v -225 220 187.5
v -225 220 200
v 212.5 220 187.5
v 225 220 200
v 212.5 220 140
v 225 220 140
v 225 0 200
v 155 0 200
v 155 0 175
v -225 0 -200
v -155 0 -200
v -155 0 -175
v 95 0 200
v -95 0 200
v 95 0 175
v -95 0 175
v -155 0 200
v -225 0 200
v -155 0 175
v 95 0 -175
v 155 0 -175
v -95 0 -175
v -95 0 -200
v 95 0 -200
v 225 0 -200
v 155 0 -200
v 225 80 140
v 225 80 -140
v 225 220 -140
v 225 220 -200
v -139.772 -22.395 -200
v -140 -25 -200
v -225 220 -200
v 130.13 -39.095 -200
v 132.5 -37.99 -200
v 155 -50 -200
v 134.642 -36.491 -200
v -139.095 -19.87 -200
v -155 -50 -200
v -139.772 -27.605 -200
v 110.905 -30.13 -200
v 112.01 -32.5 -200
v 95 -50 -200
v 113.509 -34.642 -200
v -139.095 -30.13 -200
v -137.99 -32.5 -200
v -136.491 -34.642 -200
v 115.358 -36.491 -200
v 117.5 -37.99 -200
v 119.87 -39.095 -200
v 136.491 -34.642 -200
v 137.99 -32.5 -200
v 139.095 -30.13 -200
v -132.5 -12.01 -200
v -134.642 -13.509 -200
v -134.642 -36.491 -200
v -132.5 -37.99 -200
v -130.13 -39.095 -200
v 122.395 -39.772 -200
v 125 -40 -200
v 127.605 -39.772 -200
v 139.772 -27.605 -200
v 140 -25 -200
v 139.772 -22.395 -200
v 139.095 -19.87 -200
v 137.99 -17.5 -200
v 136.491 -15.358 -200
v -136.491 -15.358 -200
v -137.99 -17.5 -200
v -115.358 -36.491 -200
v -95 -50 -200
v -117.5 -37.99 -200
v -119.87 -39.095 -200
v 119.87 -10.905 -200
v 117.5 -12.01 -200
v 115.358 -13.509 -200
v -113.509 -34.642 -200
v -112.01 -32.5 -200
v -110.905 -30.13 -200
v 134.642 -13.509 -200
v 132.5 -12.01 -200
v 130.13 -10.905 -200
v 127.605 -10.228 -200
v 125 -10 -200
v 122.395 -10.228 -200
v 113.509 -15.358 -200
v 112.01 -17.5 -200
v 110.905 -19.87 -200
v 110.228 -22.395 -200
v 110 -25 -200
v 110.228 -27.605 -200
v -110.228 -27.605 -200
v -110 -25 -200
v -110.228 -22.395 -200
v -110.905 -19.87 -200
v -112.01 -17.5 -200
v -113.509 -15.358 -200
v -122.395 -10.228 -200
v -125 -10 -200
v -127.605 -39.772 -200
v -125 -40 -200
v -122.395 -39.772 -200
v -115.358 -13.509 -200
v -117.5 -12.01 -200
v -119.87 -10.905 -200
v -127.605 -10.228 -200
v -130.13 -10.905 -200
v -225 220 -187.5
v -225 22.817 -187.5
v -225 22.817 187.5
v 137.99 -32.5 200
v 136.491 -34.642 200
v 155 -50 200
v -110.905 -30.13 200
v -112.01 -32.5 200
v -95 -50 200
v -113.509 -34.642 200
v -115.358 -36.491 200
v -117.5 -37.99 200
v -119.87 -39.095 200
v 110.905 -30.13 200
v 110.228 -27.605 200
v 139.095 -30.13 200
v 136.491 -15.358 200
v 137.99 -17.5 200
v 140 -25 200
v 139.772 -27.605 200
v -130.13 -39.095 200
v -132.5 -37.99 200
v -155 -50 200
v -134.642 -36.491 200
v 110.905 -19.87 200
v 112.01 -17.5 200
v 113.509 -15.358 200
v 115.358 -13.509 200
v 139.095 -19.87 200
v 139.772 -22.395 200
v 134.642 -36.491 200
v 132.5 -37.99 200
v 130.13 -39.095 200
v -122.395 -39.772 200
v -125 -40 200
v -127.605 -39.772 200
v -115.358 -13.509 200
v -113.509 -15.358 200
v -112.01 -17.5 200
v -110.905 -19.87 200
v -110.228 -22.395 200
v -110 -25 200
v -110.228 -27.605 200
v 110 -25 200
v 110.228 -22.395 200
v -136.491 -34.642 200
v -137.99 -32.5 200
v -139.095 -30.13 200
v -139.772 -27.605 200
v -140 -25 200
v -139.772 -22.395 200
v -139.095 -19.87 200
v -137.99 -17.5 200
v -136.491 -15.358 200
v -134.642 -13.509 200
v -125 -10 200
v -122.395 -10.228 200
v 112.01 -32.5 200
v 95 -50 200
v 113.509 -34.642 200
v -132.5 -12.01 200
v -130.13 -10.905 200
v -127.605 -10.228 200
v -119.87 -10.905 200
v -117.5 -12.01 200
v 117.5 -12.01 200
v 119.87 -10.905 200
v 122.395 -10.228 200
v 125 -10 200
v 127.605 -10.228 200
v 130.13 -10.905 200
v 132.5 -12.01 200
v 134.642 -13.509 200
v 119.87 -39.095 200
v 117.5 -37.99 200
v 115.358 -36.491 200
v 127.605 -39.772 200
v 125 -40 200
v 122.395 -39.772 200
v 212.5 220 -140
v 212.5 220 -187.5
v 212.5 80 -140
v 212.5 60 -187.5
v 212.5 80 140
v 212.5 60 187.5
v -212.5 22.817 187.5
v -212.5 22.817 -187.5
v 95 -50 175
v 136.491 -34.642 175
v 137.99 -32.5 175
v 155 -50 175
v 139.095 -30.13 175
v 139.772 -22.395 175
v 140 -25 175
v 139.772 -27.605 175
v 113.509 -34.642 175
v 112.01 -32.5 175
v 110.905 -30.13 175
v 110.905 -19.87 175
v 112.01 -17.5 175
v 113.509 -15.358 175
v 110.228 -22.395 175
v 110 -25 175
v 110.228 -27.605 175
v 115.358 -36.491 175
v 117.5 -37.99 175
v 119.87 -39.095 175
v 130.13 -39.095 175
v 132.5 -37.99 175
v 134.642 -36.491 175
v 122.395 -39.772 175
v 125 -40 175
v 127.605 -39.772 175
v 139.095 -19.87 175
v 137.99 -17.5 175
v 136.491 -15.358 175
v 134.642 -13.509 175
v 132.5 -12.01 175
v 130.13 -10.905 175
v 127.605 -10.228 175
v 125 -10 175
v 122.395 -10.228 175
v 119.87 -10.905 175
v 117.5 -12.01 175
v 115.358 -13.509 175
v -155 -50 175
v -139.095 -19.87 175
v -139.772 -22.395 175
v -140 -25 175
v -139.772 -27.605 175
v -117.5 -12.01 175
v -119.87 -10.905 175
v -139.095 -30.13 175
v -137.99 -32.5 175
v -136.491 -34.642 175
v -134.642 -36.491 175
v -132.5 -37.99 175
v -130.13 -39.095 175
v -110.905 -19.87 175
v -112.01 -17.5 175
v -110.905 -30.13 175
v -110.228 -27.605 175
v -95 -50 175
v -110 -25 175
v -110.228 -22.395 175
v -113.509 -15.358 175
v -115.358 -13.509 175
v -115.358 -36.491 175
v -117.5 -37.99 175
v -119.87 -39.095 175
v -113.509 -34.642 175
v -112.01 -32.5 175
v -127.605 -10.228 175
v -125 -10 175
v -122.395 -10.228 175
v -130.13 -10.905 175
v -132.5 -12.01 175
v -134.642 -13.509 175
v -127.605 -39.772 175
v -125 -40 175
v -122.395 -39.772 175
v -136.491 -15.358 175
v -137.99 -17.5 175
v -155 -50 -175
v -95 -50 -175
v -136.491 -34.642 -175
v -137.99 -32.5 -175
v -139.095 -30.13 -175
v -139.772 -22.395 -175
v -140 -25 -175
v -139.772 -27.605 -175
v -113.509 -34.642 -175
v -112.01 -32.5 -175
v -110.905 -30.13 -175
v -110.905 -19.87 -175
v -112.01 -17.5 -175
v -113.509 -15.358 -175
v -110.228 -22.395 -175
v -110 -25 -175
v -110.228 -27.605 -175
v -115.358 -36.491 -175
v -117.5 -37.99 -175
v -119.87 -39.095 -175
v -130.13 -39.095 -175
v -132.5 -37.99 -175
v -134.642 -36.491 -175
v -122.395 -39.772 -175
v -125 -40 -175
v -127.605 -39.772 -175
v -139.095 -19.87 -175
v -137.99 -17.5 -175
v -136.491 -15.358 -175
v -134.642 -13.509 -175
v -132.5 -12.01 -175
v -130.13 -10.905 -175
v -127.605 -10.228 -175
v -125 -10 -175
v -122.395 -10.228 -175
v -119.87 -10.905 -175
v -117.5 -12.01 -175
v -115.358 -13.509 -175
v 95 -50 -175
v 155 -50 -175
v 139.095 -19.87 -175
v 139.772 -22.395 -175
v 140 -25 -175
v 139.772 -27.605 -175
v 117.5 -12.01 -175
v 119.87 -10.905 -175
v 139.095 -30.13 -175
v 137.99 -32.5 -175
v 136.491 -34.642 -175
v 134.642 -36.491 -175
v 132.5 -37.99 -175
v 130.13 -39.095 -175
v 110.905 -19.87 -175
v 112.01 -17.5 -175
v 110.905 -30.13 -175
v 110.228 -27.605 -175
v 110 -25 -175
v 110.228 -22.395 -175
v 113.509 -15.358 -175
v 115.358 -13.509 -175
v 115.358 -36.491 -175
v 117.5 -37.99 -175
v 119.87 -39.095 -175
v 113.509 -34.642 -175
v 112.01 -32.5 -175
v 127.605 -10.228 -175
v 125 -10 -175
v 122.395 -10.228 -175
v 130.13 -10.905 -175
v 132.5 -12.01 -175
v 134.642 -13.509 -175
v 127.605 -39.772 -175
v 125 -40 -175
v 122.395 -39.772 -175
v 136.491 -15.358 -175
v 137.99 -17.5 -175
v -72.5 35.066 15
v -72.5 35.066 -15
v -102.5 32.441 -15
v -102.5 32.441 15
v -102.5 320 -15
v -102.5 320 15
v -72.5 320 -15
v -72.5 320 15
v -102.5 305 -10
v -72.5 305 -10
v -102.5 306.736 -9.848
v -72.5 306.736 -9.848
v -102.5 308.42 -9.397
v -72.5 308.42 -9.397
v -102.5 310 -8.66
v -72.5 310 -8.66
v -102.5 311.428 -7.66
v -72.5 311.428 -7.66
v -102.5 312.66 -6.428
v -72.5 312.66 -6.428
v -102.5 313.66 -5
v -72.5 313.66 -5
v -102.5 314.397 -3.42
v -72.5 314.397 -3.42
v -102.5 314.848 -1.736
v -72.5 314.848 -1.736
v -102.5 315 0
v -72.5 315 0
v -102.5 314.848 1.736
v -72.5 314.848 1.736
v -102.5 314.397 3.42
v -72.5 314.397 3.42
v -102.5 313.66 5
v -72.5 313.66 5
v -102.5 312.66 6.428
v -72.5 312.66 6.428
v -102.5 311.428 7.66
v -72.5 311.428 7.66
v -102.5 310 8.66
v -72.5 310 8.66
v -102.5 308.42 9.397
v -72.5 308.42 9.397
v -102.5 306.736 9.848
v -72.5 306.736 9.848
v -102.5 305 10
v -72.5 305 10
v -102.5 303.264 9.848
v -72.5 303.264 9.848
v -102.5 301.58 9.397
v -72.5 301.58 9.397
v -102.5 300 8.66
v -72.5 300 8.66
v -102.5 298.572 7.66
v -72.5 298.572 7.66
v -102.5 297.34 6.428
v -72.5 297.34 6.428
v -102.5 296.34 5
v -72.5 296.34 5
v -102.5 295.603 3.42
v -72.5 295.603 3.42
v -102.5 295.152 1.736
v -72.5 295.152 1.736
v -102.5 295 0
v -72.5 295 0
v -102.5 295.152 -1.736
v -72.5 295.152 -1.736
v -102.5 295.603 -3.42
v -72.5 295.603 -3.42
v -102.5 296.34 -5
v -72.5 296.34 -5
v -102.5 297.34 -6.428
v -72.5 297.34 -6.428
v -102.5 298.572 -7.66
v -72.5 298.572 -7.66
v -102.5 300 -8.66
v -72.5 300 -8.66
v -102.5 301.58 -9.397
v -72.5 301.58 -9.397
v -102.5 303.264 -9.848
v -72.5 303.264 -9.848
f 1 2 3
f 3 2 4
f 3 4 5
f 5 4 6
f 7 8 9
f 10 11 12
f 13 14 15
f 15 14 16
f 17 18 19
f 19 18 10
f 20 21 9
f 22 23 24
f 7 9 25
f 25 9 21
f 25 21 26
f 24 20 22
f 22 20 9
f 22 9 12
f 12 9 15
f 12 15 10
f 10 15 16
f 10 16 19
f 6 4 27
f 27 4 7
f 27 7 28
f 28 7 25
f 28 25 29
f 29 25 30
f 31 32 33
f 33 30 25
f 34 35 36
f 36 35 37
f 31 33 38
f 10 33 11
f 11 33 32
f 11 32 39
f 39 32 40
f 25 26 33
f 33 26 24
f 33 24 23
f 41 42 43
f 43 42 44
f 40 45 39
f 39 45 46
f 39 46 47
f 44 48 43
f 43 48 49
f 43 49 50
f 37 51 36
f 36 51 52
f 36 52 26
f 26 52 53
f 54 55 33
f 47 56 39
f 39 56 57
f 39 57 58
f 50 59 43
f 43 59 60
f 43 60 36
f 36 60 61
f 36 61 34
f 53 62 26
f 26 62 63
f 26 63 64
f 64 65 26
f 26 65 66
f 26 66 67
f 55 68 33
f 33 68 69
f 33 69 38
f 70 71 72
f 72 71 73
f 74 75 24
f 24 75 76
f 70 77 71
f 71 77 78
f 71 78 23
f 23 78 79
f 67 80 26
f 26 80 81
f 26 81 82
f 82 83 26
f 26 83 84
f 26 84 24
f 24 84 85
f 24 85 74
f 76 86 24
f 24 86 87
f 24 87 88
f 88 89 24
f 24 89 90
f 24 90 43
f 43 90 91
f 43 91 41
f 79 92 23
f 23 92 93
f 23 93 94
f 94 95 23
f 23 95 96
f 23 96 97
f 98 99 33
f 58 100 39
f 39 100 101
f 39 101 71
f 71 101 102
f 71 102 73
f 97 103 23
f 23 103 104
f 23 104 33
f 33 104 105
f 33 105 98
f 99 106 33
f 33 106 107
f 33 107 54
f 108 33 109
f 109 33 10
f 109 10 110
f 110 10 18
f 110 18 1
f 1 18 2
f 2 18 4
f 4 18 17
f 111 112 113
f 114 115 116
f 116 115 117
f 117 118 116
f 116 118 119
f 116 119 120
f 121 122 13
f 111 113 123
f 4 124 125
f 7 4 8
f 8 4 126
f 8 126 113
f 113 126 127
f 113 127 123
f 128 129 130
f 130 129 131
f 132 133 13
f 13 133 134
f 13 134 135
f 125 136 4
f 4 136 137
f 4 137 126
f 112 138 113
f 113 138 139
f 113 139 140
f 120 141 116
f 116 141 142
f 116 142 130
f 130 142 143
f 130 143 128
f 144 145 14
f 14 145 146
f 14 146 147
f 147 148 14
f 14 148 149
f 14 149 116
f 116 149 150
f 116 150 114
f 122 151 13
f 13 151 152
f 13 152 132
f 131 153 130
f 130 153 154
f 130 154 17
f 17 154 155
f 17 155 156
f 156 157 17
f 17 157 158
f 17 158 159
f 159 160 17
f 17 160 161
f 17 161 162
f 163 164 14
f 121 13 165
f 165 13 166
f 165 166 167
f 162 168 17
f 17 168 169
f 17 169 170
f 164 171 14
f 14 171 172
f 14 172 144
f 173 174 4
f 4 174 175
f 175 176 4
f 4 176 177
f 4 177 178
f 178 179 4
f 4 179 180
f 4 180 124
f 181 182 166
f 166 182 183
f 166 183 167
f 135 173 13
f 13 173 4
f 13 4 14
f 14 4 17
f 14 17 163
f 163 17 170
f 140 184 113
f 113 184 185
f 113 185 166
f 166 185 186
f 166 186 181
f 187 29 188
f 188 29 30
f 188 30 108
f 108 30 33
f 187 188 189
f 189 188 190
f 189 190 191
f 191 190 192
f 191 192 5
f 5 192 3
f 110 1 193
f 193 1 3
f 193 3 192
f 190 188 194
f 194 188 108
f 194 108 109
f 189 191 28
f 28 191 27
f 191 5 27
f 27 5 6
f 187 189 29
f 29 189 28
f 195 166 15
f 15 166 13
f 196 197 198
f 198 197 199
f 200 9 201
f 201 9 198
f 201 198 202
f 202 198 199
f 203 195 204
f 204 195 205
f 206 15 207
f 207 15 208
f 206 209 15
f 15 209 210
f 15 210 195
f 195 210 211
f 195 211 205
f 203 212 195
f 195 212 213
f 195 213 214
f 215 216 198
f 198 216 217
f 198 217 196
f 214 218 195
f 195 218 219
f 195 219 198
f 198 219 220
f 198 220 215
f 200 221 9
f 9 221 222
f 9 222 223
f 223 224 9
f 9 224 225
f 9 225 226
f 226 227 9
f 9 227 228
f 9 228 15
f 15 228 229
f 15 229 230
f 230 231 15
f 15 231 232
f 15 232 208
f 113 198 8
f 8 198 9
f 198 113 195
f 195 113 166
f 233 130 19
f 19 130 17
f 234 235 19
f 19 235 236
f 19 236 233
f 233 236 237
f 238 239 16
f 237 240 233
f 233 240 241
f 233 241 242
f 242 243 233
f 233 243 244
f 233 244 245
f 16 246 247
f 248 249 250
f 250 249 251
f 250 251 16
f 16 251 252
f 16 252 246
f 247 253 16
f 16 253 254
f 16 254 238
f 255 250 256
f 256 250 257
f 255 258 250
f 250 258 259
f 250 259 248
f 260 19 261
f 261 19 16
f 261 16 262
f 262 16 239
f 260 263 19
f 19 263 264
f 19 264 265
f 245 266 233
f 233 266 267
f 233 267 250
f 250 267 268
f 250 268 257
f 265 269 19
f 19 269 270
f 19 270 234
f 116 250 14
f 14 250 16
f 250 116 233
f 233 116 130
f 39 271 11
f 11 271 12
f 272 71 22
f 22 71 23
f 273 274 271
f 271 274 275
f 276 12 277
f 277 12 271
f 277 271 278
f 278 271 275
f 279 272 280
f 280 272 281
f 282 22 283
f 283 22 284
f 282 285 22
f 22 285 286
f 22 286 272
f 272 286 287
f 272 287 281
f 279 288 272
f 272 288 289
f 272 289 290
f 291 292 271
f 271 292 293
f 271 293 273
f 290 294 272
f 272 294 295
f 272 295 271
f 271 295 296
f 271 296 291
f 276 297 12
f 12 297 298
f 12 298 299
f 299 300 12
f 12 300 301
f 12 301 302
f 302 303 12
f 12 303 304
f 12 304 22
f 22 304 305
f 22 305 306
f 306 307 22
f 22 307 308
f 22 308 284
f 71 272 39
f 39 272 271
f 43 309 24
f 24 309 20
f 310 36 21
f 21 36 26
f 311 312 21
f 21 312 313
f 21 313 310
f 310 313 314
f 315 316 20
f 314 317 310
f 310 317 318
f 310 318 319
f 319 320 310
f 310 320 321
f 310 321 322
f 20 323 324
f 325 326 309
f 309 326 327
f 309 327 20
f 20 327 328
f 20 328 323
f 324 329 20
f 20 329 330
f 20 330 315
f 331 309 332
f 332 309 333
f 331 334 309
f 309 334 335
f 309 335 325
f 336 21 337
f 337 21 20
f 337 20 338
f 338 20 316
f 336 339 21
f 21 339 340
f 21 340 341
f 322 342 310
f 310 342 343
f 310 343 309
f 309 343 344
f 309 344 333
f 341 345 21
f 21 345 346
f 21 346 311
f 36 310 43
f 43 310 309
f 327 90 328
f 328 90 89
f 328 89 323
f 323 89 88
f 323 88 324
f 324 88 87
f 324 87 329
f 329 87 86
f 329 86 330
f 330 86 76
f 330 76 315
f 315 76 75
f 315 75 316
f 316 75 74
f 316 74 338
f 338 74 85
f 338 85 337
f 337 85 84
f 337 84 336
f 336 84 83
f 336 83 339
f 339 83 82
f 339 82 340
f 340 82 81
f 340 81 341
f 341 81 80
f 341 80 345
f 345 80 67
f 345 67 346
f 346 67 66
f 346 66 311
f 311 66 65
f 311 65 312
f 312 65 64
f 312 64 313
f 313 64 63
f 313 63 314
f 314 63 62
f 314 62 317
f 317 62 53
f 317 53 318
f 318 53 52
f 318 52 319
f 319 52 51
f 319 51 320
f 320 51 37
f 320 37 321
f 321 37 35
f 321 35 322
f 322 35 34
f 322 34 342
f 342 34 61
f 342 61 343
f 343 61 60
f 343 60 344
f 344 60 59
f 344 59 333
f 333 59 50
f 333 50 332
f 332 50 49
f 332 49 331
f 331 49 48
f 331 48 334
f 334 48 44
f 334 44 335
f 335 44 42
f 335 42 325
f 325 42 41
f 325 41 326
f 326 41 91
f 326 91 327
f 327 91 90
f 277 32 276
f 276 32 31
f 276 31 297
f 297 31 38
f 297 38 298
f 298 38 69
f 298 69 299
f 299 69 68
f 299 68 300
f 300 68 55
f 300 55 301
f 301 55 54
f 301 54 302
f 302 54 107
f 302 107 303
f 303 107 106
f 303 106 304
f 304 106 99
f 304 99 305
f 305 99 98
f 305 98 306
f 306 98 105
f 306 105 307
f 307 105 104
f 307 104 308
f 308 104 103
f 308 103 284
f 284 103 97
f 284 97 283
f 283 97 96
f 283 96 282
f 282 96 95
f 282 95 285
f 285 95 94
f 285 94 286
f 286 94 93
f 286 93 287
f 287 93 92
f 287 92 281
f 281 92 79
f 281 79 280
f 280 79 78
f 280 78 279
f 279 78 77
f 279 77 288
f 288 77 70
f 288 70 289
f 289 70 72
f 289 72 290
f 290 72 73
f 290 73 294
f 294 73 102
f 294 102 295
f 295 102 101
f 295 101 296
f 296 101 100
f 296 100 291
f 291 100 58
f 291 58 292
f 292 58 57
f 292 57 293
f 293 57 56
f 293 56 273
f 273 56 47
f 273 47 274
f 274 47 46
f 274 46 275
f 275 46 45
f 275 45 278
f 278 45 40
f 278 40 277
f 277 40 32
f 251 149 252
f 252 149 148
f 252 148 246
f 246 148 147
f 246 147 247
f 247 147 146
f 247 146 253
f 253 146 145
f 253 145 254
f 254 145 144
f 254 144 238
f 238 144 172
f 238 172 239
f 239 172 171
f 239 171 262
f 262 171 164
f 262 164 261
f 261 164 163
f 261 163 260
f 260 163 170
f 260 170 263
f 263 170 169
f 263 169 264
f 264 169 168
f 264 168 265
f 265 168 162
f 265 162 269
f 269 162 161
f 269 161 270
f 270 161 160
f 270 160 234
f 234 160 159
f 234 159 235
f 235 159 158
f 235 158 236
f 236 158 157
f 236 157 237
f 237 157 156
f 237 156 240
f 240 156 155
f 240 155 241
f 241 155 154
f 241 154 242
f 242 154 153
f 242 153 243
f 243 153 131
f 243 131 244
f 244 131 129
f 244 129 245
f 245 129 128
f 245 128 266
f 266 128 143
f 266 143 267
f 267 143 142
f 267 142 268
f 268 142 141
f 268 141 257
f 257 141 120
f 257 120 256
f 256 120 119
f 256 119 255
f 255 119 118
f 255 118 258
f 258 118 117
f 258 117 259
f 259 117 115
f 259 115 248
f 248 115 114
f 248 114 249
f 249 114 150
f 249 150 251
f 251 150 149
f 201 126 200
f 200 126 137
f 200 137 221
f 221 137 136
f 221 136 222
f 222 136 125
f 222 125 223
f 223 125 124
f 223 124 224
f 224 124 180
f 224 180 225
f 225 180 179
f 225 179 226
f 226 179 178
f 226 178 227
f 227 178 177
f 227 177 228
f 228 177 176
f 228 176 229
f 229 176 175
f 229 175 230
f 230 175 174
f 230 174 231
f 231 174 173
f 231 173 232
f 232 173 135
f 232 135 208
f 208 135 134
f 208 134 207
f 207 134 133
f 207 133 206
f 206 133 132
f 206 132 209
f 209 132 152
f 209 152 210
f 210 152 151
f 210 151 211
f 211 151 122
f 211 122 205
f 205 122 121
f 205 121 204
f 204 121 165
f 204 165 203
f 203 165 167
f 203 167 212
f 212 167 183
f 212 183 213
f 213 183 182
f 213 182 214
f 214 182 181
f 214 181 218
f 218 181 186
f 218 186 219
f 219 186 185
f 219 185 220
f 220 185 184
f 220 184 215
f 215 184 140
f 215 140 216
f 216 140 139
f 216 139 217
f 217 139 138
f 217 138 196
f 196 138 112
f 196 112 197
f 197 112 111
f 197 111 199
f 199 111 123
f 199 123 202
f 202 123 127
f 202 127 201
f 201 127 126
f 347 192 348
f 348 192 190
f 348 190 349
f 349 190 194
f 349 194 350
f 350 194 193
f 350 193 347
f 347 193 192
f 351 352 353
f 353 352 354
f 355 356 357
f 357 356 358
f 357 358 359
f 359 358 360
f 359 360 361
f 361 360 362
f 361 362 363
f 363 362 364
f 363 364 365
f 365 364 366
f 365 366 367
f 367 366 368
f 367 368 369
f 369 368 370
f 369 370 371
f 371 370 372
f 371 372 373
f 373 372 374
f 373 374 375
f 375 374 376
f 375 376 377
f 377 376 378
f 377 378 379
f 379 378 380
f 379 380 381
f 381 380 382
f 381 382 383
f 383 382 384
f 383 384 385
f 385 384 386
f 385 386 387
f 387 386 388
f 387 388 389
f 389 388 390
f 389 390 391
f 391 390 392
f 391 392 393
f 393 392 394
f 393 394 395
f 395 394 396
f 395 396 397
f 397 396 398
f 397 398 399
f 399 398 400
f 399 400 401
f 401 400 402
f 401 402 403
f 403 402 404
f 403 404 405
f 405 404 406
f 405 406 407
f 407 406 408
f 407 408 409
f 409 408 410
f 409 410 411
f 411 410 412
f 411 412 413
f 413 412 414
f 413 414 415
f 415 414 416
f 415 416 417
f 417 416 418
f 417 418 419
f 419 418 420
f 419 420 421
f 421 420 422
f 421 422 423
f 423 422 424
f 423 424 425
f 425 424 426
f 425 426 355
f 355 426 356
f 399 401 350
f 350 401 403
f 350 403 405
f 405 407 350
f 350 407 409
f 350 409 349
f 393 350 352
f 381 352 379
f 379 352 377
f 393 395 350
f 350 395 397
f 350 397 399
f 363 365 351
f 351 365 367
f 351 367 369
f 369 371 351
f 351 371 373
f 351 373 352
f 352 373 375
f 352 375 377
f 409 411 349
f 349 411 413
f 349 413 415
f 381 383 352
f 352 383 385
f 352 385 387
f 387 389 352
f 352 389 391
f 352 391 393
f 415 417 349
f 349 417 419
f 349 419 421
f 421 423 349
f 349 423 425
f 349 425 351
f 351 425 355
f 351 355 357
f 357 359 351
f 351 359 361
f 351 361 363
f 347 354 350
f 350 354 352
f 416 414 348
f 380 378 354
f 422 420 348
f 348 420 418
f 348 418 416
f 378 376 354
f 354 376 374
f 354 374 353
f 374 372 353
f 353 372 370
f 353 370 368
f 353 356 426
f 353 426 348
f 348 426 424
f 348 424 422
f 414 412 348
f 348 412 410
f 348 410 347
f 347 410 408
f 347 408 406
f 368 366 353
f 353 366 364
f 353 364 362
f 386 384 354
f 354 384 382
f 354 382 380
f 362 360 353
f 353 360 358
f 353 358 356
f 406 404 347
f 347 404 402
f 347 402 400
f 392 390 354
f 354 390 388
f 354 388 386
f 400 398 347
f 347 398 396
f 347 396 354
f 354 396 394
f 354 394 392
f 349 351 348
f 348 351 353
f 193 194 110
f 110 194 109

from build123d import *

# Parameters (mm, degrees)
SKETCH1_W            = 450
SKETCH1_H            = 400
BOSS_EXTRUDE1_DEPTH  = 220
SKETCH2_W            = 425
SKETCH2_H            = 375
CUT_EXTRUDE1_DEPTH   = 160
SKETCH3_W            = 280
SKETCH3_H            = 140
CUT_EXTRUDE2_DEPTH   = 12.5
SKETCH4_W            = 30
SKETCH4_H            = 30
BOSS_EXTRUDE2_DEPTH  = 260
SKETCH5_R            = 10
CUT_EXTRUDE3_DEPTH   = 30
SKETCH6_W            = 60
SKETCH6_H            = 25
BOSS_EXTRUDE3_DEPTH  = 50
SKETCH7_R            = 15
CUT_EXTRUDE4_DEPTH   = 25
CUT_EXTRUDE5_START   = -25
SKETCH8_R            = 15
CUT_EXTRUDE5_DEPTH   = 25
CUT_EXTRUDE6_START   = -187.5
CUT_EXTRUDE6_DEPTH   = 375
CUT_EXTRUDE6_2_DEPTH = 172.5
CUT_EXTRUDE6_START_2 = 15
CUT_EXTRUDE6_3_DEPTH = 172.5
SKETCH10_W           = 375
SKETCH10_H           = 197.182681999
CUT_EXTRUDE7_DEPTH   = 12.5


# Read off the part's stored shape, not the designer's step: Cut-Extrude6
with BuildPart() as part:
    # Sketch1 → Boss-Extrude1 (new body)
    with BuildSketch(Plane(origin=(0, 0, 0), x_dir=(1, 0, 0), z_dir=(0, 1, 0))):
        Rectangle(SKETCH1_W, SKETCH1_H)
    extrude(amount=BOSS_EXTRUDE1_DEPTH)

    # Sketch2 → Cut-Extrude1 (cut)
    with BuildSketch(Plane(origin=(0, 220, 0), x_dir=(1, 0, 0), z_dir=(0, 1, 0))):
        Rectangle(SKETCH2_W, SKETCH2_H)
    extrude(amount=-CUT_EXTRUDE1_DEPTH, mode=Mode.SUBTRACT)

    # Sketch3 → Cut-Extrude2 (cut)
    with BuildSketch(Plane(origin=(225, 0, 0), x_dir=(0, 0, -1), z_dir=(1, 0, 0))):
        with Locations((0, 150)):
            Rectangle(SKETCH3_W, SKETCH3_H)
    extrude(amount=-CUT_EXTRUDE2_DEPTH, mode=Mode.SUBTRACT)

    # Sketch4 → Boss-Extrude2 (add)
    with BuildSketch(Plane(origin=(0, 60, 0), x_dir=(1, 0, 0), z_dir=(0, 1, 0))):
        with Locations((-87.5, 0)):
            Rectangle(SKETCH4_W, SKETCH4_H)
    extrude(amount=BOSS_EXTRUDE2_DEPTH)

    # Sketch5 → Cut-Extrude3 (cut)
    with BuildSketch(Plane(origin=(-72.5, 0, 0), x_dir=(0, 0, -1), z_dir=(1, 0, 0))):
        with Locations((0, 305)):
            Circle(SKETCH5_R)
    extrude(amount=-CUT_EXTRUDE3_DEPTH, mode=Mode.SUBTRACT)

    # Sketch6 → Boss-Extrude3 (add)
    with BuildSketch(Plane.XZ):
        with Locations((125, 187.5)):
            Rectangle(SKETCH6_W, SKETCH6_H)
        with Locations((-125, 187.5)):
            Rectangle(SKETCH6_W, SKETCH6_H)
        with Locations((-125, -187.5)):
            Rectangle(SKETCH6_W, SKETCH6_H)
        with Locations((125, -187.5)):
            Rectangle(SKETCH6_W, SKETCH6_H)
    extrude(amount=BOSS_EXTRUDE3_DEPTH)

    # Sketch7 → Cut-Extrude4 (cut)
    with BuildSketch(Plane(origin=(0, 0, -200), x_dir=(-1, 0, 0), z_dir=(0, 0, -1))):
        with Locations((125, -25)):
            Circle(SKETCH7_R)
        with Locations((-125, -25)):
            Circle(SKETCH7_R)
    extrude(amount=-CUT_EXTRUDE4_DEPTH, mode=Mode.SUBTRACT)

    # Sketch8 → Cut-Extrude5 (cut)
    with BuildSketch(Plane.XY.offset(200).offset(CUT_EXTRUDE5_START)):
        with Locations(Location((-125, -25, 0), (0, 0, 180))):
            Circle(SKETCH8_R)
        with Locations(Location((125, -25, 0), (0, 0, 180))):
            Circle(SKETCH8_R)
    extrude(amount=CUT_EXTRUDE5_DEPTH, mode=Mode.SUBTRACT)

    # Cut-Extrude6 outline → Cut-Extrude6 (cut)
    with BuildSketch(Plane.XY.offset(CUT_EXTRUDE6_START)):
        Polygon((-102.5, 60), (-212.5, 60), (-212.5, 22.817318001), (-102.5, 32.441070989), align=None)
        Polygon((212.5, 60), (-72.5, 60), (-72.5, 35.065730895), align=None)
    extrude(amount=CUT_EXTRUDE6_DEPTH, mode=Mode.SUBTRACT)

    # Cut-Extrude6 2 outline → Cut-Extrude6 2 (cut)
    with BuildSketch(Plane.XY.offset(CUT_EXTRUDE6_START)):
        Polygon((-72.5, 60), (-102.5, 60), (-102.5, 32.441070989), (-72.5, 35.065730895), align=None)
    extrude(amount=CUT_EXTRUDE6_2_DEPTH, mode=Mode.SUBTRACT)

    # Cut-Extrude6 3 outline → Cut-Extrude6 3 (cut)
    with BuildSketch(Plane.XY.offset(CUT_EXTRUDE6_START_2)):
        Polygon((-72.5, 60), (-102.5, 60), (-102.5, 32.441070989), (-72.5, 35.065730895), align=None)
    extrude(amount=CUT_EXTRUDE6_3_DEPTH, mode=Mode.SUBTRACT)

    # Sketch10 → Cut-Extrude7 (cut)
    with BuildSketch(Plane(origin=(-212.5, 0, 0), x_dir=(0, 0, -1), z_dir=(1, 0, 0))):
        with Locations((0, 121.408659)):
            Rectangle(SKETCH10_W, SKETCH10_H)
    extrude(amount=-CUT_EXTRUDE7_DEPTH, mode=Mode.SUBTRACT)


solid = part.part
